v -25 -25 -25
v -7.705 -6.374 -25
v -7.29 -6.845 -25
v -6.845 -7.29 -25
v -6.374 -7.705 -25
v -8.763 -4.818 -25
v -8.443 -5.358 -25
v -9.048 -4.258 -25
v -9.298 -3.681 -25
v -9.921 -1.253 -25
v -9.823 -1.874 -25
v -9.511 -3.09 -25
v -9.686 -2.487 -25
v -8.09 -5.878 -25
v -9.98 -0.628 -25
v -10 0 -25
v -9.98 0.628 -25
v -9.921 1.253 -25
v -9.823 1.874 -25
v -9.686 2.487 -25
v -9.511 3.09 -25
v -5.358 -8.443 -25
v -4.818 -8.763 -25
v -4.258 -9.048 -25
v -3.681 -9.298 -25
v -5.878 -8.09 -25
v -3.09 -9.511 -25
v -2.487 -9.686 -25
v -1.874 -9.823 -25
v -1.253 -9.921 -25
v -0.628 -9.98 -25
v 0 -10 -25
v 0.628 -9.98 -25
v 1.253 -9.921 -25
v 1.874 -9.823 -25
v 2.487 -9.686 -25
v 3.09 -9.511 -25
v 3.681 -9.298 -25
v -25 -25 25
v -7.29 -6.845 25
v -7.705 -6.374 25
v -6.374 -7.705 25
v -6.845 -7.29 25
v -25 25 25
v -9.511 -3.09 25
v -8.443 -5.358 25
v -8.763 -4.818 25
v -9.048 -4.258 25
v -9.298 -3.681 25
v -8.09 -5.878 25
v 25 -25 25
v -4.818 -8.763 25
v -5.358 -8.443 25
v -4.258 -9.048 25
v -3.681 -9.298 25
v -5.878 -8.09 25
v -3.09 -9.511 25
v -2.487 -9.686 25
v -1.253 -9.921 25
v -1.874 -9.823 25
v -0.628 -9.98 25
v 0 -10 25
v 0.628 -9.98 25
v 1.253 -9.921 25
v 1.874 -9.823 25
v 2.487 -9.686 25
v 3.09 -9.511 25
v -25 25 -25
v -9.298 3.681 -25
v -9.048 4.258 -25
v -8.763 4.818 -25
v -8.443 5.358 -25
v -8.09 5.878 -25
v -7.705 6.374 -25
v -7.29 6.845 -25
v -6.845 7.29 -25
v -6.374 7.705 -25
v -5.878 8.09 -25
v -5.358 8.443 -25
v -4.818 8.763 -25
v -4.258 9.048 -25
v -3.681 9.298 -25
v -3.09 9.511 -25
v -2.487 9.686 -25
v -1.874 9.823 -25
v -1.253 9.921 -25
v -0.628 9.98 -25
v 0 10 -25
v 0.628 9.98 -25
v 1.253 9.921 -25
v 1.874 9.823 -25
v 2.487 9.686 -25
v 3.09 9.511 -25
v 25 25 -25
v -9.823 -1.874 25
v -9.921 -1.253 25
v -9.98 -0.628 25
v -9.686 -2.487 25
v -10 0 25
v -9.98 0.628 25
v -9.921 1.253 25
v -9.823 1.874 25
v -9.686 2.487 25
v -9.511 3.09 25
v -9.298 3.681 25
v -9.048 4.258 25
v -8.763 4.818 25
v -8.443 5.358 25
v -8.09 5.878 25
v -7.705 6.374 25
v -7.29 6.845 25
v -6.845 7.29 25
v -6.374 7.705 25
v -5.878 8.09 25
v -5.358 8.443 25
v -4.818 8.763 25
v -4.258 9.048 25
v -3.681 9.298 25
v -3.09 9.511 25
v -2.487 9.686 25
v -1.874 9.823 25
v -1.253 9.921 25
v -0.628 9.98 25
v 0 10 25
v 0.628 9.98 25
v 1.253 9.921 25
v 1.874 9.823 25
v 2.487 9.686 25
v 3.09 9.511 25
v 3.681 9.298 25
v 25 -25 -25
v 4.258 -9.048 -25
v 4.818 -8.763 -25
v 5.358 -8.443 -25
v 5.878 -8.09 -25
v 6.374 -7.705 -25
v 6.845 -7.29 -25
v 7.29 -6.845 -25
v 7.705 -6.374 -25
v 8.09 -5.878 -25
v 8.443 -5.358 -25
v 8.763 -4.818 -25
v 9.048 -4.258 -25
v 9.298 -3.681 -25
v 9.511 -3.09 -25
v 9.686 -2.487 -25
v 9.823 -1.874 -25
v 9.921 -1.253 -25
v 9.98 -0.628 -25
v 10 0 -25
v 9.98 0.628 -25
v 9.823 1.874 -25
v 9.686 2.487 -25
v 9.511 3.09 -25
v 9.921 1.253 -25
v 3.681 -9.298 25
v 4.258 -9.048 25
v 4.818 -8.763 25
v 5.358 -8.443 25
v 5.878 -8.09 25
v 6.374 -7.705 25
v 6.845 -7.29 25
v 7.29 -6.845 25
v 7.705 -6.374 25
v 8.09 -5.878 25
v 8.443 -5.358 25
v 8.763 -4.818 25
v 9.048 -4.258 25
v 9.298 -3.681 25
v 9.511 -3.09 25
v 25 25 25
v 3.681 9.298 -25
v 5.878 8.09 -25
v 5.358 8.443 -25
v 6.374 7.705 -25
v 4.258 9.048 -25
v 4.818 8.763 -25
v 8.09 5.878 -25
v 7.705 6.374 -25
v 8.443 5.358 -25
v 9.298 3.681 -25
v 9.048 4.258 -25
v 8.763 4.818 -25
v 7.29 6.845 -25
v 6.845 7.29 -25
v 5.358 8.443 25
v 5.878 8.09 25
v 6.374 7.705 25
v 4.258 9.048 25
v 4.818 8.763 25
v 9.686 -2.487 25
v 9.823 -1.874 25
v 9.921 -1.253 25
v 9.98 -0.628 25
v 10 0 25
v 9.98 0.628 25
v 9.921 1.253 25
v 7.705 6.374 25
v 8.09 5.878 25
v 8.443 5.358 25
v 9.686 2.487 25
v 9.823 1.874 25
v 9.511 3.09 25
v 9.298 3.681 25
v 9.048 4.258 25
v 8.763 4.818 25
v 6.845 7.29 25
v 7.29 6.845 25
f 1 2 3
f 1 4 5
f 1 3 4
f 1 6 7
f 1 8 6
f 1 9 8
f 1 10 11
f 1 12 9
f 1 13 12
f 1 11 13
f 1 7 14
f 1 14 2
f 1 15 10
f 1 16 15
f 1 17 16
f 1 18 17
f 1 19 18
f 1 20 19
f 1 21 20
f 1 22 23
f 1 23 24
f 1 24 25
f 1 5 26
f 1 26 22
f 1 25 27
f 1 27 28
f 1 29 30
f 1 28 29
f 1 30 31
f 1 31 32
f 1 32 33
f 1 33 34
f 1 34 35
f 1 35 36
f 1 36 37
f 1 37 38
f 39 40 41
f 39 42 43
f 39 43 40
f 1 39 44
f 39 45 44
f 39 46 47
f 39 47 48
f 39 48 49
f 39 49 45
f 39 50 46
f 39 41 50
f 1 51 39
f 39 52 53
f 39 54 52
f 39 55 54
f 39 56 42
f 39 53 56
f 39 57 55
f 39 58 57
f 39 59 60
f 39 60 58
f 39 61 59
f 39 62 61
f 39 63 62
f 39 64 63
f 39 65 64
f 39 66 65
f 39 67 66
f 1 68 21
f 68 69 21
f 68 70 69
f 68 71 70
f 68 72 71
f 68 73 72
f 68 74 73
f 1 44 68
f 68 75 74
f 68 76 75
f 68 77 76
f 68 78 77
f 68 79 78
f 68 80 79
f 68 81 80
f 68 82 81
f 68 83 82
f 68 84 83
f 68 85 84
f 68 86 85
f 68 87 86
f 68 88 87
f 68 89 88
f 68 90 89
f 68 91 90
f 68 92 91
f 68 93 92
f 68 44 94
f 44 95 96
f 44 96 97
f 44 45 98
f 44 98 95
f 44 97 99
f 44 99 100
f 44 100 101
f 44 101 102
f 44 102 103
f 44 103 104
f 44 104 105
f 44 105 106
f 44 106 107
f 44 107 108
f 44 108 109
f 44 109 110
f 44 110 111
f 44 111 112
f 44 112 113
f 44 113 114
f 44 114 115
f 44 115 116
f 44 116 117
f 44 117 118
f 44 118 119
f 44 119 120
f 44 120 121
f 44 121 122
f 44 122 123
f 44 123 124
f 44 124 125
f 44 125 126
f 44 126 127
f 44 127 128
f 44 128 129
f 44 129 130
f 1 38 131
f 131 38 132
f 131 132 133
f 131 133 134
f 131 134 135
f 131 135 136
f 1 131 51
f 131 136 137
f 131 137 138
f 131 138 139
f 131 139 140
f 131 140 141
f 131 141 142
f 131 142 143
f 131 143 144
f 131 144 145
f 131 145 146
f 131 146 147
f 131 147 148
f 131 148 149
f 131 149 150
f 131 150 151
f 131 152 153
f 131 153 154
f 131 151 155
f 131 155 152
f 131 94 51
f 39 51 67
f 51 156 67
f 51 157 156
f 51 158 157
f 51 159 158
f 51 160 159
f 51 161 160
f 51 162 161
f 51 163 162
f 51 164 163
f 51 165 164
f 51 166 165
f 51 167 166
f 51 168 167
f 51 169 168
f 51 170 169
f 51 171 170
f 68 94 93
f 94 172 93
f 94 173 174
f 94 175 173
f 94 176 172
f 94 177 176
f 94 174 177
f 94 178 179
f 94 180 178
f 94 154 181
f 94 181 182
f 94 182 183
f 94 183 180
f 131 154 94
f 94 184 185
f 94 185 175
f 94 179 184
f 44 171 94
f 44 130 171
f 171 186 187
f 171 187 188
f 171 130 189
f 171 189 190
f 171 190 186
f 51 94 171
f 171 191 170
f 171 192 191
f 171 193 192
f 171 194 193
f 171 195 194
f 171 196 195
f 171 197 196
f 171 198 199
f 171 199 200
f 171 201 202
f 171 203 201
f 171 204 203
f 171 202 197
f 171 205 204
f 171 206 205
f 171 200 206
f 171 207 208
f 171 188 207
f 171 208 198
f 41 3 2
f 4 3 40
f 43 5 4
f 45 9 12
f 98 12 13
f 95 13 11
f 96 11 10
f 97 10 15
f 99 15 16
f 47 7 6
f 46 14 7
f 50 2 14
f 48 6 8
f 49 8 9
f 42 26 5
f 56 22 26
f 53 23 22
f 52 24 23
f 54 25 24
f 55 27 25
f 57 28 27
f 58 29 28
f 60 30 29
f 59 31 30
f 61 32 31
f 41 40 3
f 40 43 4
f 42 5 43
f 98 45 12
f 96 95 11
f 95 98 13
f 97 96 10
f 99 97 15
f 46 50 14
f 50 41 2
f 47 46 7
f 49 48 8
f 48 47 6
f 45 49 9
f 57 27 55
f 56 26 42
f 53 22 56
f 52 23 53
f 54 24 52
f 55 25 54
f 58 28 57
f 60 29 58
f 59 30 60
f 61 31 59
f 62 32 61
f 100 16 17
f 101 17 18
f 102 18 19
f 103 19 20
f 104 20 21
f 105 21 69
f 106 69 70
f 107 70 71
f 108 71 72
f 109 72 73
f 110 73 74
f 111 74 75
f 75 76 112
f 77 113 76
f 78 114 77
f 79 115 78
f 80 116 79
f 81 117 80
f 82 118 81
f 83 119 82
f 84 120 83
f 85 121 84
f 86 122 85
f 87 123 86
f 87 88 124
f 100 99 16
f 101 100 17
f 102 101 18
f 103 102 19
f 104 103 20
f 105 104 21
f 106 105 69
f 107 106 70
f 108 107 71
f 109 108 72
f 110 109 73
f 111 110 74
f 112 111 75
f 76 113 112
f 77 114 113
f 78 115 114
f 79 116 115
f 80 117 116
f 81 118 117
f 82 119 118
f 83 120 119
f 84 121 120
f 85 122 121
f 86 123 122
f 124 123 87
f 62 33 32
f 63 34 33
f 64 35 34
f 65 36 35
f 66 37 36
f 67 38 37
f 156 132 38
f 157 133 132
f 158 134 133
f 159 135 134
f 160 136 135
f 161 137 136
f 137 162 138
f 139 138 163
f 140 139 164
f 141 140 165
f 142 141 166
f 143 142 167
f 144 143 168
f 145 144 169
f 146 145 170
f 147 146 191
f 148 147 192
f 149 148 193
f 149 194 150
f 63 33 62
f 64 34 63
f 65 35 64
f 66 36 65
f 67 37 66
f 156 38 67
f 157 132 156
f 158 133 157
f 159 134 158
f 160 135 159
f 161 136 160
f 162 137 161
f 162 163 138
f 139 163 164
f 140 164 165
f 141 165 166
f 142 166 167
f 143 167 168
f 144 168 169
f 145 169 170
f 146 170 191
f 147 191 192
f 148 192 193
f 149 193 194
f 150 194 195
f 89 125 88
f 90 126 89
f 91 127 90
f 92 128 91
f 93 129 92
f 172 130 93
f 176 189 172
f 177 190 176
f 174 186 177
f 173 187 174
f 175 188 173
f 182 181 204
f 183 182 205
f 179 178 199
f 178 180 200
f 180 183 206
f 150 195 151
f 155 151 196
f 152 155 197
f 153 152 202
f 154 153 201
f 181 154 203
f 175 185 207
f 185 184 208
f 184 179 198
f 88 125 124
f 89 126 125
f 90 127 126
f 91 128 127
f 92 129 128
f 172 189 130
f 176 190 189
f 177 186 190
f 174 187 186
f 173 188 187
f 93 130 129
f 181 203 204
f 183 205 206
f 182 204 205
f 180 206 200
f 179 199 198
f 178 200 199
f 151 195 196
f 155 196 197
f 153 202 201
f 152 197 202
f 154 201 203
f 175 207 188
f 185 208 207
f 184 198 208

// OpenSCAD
difference() {
    cube([50, 50, 50], center = true);
    cylinder(h = 51, d = 20, center = true, $fn = 100);
}
